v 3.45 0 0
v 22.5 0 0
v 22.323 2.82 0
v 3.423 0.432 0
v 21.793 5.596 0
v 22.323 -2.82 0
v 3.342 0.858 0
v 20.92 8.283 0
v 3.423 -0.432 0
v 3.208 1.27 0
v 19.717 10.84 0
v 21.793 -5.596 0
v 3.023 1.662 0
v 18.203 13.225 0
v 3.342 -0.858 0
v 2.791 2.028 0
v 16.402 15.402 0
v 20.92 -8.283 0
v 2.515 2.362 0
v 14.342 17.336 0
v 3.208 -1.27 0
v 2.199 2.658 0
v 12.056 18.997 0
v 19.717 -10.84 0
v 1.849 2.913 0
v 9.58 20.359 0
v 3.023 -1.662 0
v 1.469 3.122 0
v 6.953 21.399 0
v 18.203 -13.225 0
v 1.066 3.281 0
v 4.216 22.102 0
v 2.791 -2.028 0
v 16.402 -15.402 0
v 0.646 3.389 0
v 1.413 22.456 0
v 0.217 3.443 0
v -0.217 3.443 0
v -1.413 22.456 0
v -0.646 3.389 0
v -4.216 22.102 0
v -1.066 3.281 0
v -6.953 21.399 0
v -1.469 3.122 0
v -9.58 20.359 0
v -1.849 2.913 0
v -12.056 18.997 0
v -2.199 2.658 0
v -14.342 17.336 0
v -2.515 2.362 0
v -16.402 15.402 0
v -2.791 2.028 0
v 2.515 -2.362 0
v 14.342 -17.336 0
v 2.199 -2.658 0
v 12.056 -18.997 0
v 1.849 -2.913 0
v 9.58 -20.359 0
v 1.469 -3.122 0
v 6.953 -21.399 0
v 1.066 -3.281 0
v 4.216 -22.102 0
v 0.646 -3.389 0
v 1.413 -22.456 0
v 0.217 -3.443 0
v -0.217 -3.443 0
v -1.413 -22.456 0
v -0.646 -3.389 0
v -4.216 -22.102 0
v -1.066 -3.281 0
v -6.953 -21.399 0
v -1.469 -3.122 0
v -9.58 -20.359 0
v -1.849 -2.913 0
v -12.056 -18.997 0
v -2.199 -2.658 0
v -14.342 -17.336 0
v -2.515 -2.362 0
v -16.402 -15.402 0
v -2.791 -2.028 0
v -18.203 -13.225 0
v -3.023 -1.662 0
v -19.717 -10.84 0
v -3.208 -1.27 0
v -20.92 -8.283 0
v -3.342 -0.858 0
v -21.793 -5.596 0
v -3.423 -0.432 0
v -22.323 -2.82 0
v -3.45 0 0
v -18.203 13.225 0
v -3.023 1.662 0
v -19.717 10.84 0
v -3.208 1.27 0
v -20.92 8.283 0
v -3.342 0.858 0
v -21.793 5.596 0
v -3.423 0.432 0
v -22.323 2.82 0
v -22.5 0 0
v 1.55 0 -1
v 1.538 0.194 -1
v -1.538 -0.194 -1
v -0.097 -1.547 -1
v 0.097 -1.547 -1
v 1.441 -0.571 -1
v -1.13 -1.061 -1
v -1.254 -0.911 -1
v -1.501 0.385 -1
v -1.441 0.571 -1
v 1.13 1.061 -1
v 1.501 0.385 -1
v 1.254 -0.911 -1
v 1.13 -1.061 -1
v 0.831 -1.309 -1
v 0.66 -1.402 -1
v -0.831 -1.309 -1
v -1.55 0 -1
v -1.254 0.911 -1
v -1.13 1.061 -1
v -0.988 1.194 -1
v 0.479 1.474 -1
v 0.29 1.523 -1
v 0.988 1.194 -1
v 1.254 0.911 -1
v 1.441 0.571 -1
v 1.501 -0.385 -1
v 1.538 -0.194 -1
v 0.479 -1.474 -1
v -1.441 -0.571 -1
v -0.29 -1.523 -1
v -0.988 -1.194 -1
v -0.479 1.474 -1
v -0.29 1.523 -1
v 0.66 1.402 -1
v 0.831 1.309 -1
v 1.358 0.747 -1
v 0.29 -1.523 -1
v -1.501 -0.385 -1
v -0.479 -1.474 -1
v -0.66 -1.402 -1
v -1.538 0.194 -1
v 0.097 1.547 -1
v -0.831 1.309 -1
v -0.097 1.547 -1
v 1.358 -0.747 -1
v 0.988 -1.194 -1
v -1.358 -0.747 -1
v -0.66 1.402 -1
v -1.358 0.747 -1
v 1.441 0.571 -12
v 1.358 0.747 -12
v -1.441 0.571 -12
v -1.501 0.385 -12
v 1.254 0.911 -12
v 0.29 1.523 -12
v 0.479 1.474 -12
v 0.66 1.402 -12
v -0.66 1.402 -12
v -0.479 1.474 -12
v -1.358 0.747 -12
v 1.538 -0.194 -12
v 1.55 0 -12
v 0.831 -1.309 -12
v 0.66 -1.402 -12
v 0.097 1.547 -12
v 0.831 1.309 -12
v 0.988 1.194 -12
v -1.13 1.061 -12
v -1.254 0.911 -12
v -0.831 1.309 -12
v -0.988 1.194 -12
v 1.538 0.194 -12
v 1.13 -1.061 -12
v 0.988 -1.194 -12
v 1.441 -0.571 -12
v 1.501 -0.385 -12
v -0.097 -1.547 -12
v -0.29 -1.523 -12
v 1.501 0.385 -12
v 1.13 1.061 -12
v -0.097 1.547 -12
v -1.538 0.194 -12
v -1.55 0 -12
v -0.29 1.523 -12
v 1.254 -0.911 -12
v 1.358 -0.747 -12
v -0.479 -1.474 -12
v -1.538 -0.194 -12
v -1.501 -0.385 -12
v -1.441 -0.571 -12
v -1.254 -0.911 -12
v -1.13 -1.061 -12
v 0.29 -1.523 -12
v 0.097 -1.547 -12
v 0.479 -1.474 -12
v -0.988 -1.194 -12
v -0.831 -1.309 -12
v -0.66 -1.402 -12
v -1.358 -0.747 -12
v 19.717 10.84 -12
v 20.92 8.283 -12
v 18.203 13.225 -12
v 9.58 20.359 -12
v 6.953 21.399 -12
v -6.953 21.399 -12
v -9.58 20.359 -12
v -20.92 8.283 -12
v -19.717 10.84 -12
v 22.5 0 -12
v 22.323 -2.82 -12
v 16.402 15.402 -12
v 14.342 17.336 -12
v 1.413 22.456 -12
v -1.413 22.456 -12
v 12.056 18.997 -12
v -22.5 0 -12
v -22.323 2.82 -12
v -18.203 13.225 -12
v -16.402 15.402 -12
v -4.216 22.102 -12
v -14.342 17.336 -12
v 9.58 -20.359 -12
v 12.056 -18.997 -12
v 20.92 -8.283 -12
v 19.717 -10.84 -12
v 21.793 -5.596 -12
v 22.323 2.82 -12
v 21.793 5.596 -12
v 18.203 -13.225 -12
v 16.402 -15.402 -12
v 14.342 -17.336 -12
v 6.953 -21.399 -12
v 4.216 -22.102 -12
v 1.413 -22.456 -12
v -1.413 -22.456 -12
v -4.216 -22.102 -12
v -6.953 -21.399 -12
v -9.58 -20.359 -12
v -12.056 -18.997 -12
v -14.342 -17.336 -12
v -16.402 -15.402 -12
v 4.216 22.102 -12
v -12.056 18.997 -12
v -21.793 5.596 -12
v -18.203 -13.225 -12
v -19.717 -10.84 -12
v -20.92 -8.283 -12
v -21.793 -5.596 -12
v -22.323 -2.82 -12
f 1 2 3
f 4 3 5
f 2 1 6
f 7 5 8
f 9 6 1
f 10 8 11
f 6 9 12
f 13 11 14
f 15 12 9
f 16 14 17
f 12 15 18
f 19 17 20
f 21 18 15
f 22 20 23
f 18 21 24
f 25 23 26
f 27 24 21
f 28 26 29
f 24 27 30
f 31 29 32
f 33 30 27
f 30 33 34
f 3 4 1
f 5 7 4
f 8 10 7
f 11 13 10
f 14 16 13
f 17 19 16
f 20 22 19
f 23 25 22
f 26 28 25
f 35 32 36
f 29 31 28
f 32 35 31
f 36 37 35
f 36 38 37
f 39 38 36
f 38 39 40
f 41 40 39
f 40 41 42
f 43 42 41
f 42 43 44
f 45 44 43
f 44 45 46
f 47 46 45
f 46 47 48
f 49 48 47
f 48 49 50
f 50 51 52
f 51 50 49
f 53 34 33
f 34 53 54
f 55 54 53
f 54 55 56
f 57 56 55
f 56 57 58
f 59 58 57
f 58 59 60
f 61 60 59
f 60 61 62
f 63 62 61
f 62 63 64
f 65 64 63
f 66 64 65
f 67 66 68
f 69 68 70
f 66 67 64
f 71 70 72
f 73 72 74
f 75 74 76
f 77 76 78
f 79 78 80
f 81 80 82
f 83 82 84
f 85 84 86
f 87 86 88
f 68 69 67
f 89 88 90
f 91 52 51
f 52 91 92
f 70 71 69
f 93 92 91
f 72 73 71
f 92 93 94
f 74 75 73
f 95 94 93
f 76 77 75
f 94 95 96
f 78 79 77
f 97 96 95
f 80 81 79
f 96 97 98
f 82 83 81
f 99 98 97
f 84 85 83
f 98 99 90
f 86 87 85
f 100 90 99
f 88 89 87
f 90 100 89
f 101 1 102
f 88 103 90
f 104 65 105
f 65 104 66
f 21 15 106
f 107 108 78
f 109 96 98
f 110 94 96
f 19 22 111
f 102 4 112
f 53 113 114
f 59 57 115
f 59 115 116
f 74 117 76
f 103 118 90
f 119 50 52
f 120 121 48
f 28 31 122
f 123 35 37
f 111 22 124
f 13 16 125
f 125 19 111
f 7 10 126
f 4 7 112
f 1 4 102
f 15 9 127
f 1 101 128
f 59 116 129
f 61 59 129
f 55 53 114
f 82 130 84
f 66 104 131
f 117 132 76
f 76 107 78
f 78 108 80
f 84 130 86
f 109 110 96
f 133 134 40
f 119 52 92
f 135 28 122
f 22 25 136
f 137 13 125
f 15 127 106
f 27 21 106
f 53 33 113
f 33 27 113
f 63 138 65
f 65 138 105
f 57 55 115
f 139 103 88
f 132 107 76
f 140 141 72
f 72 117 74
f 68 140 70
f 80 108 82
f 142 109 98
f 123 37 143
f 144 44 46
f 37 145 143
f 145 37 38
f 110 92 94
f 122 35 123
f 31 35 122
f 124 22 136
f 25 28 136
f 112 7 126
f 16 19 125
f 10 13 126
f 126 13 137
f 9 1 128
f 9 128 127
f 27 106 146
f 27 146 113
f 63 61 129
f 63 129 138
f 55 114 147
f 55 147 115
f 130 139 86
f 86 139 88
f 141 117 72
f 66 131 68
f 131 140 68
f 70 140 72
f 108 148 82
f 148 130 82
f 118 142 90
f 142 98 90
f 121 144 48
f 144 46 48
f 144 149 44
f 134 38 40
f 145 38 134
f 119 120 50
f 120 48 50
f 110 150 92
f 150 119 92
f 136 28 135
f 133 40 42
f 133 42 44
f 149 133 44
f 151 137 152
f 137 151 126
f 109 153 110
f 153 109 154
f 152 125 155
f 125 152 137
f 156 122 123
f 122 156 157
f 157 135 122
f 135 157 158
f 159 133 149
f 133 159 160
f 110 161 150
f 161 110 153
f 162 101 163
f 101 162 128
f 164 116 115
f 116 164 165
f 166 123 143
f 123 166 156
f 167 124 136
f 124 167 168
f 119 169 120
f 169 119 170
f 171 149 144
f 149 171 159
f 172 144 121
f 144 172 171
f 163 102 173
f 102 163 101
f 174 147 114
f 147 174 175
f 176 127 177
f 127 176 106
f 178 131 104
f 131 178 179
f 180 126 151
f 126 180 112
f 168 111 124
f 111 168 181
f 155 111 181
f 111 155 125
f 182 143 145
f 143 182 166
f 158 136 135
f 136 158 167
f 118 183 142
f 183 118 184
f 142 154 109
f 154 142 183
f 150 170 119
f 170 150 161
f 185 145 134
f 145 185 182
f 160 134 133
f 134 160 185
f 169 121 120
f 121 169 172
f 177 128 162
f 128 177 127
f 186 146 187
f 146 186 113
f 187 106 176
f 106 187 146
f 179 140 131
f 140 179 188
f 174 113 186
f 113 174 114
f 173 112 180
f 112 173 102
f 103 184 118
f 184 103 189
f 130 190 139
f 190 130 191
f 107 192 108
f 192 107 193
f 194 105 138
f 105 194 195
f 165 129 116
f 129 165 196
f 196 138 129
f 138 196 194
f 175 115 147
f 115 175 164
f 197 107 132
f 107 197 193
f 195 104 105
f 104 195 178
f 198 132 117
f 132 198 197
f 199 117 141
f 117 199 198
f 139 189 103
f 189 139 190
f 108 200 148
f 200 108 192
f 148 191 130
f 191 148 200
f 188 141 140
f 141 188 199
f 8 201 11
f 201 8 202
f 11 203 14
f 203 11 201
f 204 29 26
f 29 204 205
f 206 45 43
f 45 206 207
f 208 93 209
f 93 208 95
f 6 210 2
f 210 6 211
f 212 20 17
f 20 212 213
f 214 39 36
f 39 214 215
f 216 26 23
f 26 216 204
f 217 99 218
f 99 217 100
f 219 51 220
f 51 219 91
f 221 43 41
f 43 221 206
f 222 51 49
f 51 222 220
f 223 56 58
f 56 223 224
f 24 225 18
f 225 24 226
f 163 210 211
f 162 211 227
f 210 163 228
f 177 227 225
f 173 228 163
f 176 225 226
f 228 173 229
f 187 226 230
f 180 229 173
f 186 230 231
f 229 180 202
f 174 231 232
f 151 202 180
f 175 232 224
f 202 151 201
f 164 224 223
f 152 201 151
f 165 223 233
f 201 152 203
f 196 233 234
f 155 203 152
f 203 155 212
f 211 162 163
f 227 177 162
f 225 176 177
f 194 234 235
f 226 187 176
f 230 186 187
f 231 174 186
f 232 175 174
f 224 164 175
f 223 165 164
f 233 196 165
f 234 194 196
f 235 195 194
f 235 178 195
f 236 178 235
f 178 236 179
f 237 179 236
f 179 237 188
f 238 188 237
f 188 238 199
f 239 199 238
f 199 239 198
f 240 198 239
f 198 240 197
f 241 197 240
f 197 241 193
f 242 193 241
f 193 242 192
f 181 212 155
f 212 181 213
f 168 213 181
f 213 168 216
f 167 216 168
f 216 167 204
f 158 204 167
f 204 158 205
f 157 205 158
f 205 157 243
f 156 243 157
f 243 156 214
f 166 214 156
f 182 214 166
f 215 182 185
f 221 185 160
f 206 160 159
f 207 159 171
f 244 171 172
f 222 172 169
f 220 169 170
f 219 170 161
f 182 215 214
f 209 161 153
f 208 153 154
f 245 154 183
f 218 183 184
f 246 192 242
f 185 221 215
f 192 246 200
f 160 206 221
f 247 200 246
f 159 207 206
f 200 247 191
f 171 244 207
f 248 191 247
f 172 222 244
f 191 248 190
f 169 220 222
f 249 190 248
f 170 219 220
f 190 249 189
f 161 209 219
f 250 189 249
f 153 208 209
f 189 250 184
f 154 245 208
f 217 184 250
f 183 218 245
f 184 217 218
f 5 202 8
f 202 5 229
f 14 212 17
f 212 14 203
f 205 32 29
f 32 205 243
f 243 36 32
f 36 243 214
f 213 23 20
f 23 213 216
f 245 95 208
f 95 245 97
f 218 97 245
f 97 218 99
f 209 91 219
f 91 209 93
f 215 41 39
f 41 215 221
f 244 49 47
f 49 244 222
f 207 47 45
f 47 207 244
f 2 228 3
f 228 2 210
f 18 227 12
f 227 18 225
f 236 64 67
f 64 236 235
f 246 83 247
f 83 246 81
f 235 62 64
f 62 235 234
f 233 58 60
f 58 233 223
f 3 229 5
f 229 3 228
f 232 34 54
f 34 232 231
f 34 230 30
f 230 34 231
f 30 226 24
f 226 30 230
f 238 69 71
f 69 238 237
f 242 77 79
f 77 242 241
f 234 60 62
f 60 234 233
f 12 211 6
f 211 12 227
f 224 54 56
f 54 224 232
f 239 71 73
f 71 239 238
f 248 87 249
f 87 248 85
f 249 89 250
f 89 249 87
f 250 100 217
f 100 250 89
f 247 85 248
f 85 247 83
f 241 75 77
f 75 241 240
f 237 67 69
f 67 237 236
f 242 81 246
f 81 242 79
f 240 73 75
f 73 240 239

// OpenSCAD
$fn = 50;


difference() {
	union() {
		translate(v = [0, 0, -12.0000000000]) {
			cylinder(h = 12, r = 22.5000000000);
		}
	}
	union() {
		translate(v = [0, 0, 0]) {
			rotate(a = [0, 0, 0]) {
				difference() {
					union() {
						translate(v = [0, 0, -15.0000000000]) {
							cylinder(h = 15, r = 1.2500000000);
						}
						translate(v = [0, 0, -1.0000000000]) {
							cylinder(h = 1.0000000000, r1 = 1.5500000000, r2 = 3.4500000000);
						}
						translate(v = [0, 0, -15.0000000000]) {
							cylinder(h = 15, r = 1.5500000000);
						}
						translate(v = [0, 0, -15.0000000000]) {
							cylinder(h = 15, r = 1.2500000000);
						}
					}
					union();
				}
			}
		}
	}
}
